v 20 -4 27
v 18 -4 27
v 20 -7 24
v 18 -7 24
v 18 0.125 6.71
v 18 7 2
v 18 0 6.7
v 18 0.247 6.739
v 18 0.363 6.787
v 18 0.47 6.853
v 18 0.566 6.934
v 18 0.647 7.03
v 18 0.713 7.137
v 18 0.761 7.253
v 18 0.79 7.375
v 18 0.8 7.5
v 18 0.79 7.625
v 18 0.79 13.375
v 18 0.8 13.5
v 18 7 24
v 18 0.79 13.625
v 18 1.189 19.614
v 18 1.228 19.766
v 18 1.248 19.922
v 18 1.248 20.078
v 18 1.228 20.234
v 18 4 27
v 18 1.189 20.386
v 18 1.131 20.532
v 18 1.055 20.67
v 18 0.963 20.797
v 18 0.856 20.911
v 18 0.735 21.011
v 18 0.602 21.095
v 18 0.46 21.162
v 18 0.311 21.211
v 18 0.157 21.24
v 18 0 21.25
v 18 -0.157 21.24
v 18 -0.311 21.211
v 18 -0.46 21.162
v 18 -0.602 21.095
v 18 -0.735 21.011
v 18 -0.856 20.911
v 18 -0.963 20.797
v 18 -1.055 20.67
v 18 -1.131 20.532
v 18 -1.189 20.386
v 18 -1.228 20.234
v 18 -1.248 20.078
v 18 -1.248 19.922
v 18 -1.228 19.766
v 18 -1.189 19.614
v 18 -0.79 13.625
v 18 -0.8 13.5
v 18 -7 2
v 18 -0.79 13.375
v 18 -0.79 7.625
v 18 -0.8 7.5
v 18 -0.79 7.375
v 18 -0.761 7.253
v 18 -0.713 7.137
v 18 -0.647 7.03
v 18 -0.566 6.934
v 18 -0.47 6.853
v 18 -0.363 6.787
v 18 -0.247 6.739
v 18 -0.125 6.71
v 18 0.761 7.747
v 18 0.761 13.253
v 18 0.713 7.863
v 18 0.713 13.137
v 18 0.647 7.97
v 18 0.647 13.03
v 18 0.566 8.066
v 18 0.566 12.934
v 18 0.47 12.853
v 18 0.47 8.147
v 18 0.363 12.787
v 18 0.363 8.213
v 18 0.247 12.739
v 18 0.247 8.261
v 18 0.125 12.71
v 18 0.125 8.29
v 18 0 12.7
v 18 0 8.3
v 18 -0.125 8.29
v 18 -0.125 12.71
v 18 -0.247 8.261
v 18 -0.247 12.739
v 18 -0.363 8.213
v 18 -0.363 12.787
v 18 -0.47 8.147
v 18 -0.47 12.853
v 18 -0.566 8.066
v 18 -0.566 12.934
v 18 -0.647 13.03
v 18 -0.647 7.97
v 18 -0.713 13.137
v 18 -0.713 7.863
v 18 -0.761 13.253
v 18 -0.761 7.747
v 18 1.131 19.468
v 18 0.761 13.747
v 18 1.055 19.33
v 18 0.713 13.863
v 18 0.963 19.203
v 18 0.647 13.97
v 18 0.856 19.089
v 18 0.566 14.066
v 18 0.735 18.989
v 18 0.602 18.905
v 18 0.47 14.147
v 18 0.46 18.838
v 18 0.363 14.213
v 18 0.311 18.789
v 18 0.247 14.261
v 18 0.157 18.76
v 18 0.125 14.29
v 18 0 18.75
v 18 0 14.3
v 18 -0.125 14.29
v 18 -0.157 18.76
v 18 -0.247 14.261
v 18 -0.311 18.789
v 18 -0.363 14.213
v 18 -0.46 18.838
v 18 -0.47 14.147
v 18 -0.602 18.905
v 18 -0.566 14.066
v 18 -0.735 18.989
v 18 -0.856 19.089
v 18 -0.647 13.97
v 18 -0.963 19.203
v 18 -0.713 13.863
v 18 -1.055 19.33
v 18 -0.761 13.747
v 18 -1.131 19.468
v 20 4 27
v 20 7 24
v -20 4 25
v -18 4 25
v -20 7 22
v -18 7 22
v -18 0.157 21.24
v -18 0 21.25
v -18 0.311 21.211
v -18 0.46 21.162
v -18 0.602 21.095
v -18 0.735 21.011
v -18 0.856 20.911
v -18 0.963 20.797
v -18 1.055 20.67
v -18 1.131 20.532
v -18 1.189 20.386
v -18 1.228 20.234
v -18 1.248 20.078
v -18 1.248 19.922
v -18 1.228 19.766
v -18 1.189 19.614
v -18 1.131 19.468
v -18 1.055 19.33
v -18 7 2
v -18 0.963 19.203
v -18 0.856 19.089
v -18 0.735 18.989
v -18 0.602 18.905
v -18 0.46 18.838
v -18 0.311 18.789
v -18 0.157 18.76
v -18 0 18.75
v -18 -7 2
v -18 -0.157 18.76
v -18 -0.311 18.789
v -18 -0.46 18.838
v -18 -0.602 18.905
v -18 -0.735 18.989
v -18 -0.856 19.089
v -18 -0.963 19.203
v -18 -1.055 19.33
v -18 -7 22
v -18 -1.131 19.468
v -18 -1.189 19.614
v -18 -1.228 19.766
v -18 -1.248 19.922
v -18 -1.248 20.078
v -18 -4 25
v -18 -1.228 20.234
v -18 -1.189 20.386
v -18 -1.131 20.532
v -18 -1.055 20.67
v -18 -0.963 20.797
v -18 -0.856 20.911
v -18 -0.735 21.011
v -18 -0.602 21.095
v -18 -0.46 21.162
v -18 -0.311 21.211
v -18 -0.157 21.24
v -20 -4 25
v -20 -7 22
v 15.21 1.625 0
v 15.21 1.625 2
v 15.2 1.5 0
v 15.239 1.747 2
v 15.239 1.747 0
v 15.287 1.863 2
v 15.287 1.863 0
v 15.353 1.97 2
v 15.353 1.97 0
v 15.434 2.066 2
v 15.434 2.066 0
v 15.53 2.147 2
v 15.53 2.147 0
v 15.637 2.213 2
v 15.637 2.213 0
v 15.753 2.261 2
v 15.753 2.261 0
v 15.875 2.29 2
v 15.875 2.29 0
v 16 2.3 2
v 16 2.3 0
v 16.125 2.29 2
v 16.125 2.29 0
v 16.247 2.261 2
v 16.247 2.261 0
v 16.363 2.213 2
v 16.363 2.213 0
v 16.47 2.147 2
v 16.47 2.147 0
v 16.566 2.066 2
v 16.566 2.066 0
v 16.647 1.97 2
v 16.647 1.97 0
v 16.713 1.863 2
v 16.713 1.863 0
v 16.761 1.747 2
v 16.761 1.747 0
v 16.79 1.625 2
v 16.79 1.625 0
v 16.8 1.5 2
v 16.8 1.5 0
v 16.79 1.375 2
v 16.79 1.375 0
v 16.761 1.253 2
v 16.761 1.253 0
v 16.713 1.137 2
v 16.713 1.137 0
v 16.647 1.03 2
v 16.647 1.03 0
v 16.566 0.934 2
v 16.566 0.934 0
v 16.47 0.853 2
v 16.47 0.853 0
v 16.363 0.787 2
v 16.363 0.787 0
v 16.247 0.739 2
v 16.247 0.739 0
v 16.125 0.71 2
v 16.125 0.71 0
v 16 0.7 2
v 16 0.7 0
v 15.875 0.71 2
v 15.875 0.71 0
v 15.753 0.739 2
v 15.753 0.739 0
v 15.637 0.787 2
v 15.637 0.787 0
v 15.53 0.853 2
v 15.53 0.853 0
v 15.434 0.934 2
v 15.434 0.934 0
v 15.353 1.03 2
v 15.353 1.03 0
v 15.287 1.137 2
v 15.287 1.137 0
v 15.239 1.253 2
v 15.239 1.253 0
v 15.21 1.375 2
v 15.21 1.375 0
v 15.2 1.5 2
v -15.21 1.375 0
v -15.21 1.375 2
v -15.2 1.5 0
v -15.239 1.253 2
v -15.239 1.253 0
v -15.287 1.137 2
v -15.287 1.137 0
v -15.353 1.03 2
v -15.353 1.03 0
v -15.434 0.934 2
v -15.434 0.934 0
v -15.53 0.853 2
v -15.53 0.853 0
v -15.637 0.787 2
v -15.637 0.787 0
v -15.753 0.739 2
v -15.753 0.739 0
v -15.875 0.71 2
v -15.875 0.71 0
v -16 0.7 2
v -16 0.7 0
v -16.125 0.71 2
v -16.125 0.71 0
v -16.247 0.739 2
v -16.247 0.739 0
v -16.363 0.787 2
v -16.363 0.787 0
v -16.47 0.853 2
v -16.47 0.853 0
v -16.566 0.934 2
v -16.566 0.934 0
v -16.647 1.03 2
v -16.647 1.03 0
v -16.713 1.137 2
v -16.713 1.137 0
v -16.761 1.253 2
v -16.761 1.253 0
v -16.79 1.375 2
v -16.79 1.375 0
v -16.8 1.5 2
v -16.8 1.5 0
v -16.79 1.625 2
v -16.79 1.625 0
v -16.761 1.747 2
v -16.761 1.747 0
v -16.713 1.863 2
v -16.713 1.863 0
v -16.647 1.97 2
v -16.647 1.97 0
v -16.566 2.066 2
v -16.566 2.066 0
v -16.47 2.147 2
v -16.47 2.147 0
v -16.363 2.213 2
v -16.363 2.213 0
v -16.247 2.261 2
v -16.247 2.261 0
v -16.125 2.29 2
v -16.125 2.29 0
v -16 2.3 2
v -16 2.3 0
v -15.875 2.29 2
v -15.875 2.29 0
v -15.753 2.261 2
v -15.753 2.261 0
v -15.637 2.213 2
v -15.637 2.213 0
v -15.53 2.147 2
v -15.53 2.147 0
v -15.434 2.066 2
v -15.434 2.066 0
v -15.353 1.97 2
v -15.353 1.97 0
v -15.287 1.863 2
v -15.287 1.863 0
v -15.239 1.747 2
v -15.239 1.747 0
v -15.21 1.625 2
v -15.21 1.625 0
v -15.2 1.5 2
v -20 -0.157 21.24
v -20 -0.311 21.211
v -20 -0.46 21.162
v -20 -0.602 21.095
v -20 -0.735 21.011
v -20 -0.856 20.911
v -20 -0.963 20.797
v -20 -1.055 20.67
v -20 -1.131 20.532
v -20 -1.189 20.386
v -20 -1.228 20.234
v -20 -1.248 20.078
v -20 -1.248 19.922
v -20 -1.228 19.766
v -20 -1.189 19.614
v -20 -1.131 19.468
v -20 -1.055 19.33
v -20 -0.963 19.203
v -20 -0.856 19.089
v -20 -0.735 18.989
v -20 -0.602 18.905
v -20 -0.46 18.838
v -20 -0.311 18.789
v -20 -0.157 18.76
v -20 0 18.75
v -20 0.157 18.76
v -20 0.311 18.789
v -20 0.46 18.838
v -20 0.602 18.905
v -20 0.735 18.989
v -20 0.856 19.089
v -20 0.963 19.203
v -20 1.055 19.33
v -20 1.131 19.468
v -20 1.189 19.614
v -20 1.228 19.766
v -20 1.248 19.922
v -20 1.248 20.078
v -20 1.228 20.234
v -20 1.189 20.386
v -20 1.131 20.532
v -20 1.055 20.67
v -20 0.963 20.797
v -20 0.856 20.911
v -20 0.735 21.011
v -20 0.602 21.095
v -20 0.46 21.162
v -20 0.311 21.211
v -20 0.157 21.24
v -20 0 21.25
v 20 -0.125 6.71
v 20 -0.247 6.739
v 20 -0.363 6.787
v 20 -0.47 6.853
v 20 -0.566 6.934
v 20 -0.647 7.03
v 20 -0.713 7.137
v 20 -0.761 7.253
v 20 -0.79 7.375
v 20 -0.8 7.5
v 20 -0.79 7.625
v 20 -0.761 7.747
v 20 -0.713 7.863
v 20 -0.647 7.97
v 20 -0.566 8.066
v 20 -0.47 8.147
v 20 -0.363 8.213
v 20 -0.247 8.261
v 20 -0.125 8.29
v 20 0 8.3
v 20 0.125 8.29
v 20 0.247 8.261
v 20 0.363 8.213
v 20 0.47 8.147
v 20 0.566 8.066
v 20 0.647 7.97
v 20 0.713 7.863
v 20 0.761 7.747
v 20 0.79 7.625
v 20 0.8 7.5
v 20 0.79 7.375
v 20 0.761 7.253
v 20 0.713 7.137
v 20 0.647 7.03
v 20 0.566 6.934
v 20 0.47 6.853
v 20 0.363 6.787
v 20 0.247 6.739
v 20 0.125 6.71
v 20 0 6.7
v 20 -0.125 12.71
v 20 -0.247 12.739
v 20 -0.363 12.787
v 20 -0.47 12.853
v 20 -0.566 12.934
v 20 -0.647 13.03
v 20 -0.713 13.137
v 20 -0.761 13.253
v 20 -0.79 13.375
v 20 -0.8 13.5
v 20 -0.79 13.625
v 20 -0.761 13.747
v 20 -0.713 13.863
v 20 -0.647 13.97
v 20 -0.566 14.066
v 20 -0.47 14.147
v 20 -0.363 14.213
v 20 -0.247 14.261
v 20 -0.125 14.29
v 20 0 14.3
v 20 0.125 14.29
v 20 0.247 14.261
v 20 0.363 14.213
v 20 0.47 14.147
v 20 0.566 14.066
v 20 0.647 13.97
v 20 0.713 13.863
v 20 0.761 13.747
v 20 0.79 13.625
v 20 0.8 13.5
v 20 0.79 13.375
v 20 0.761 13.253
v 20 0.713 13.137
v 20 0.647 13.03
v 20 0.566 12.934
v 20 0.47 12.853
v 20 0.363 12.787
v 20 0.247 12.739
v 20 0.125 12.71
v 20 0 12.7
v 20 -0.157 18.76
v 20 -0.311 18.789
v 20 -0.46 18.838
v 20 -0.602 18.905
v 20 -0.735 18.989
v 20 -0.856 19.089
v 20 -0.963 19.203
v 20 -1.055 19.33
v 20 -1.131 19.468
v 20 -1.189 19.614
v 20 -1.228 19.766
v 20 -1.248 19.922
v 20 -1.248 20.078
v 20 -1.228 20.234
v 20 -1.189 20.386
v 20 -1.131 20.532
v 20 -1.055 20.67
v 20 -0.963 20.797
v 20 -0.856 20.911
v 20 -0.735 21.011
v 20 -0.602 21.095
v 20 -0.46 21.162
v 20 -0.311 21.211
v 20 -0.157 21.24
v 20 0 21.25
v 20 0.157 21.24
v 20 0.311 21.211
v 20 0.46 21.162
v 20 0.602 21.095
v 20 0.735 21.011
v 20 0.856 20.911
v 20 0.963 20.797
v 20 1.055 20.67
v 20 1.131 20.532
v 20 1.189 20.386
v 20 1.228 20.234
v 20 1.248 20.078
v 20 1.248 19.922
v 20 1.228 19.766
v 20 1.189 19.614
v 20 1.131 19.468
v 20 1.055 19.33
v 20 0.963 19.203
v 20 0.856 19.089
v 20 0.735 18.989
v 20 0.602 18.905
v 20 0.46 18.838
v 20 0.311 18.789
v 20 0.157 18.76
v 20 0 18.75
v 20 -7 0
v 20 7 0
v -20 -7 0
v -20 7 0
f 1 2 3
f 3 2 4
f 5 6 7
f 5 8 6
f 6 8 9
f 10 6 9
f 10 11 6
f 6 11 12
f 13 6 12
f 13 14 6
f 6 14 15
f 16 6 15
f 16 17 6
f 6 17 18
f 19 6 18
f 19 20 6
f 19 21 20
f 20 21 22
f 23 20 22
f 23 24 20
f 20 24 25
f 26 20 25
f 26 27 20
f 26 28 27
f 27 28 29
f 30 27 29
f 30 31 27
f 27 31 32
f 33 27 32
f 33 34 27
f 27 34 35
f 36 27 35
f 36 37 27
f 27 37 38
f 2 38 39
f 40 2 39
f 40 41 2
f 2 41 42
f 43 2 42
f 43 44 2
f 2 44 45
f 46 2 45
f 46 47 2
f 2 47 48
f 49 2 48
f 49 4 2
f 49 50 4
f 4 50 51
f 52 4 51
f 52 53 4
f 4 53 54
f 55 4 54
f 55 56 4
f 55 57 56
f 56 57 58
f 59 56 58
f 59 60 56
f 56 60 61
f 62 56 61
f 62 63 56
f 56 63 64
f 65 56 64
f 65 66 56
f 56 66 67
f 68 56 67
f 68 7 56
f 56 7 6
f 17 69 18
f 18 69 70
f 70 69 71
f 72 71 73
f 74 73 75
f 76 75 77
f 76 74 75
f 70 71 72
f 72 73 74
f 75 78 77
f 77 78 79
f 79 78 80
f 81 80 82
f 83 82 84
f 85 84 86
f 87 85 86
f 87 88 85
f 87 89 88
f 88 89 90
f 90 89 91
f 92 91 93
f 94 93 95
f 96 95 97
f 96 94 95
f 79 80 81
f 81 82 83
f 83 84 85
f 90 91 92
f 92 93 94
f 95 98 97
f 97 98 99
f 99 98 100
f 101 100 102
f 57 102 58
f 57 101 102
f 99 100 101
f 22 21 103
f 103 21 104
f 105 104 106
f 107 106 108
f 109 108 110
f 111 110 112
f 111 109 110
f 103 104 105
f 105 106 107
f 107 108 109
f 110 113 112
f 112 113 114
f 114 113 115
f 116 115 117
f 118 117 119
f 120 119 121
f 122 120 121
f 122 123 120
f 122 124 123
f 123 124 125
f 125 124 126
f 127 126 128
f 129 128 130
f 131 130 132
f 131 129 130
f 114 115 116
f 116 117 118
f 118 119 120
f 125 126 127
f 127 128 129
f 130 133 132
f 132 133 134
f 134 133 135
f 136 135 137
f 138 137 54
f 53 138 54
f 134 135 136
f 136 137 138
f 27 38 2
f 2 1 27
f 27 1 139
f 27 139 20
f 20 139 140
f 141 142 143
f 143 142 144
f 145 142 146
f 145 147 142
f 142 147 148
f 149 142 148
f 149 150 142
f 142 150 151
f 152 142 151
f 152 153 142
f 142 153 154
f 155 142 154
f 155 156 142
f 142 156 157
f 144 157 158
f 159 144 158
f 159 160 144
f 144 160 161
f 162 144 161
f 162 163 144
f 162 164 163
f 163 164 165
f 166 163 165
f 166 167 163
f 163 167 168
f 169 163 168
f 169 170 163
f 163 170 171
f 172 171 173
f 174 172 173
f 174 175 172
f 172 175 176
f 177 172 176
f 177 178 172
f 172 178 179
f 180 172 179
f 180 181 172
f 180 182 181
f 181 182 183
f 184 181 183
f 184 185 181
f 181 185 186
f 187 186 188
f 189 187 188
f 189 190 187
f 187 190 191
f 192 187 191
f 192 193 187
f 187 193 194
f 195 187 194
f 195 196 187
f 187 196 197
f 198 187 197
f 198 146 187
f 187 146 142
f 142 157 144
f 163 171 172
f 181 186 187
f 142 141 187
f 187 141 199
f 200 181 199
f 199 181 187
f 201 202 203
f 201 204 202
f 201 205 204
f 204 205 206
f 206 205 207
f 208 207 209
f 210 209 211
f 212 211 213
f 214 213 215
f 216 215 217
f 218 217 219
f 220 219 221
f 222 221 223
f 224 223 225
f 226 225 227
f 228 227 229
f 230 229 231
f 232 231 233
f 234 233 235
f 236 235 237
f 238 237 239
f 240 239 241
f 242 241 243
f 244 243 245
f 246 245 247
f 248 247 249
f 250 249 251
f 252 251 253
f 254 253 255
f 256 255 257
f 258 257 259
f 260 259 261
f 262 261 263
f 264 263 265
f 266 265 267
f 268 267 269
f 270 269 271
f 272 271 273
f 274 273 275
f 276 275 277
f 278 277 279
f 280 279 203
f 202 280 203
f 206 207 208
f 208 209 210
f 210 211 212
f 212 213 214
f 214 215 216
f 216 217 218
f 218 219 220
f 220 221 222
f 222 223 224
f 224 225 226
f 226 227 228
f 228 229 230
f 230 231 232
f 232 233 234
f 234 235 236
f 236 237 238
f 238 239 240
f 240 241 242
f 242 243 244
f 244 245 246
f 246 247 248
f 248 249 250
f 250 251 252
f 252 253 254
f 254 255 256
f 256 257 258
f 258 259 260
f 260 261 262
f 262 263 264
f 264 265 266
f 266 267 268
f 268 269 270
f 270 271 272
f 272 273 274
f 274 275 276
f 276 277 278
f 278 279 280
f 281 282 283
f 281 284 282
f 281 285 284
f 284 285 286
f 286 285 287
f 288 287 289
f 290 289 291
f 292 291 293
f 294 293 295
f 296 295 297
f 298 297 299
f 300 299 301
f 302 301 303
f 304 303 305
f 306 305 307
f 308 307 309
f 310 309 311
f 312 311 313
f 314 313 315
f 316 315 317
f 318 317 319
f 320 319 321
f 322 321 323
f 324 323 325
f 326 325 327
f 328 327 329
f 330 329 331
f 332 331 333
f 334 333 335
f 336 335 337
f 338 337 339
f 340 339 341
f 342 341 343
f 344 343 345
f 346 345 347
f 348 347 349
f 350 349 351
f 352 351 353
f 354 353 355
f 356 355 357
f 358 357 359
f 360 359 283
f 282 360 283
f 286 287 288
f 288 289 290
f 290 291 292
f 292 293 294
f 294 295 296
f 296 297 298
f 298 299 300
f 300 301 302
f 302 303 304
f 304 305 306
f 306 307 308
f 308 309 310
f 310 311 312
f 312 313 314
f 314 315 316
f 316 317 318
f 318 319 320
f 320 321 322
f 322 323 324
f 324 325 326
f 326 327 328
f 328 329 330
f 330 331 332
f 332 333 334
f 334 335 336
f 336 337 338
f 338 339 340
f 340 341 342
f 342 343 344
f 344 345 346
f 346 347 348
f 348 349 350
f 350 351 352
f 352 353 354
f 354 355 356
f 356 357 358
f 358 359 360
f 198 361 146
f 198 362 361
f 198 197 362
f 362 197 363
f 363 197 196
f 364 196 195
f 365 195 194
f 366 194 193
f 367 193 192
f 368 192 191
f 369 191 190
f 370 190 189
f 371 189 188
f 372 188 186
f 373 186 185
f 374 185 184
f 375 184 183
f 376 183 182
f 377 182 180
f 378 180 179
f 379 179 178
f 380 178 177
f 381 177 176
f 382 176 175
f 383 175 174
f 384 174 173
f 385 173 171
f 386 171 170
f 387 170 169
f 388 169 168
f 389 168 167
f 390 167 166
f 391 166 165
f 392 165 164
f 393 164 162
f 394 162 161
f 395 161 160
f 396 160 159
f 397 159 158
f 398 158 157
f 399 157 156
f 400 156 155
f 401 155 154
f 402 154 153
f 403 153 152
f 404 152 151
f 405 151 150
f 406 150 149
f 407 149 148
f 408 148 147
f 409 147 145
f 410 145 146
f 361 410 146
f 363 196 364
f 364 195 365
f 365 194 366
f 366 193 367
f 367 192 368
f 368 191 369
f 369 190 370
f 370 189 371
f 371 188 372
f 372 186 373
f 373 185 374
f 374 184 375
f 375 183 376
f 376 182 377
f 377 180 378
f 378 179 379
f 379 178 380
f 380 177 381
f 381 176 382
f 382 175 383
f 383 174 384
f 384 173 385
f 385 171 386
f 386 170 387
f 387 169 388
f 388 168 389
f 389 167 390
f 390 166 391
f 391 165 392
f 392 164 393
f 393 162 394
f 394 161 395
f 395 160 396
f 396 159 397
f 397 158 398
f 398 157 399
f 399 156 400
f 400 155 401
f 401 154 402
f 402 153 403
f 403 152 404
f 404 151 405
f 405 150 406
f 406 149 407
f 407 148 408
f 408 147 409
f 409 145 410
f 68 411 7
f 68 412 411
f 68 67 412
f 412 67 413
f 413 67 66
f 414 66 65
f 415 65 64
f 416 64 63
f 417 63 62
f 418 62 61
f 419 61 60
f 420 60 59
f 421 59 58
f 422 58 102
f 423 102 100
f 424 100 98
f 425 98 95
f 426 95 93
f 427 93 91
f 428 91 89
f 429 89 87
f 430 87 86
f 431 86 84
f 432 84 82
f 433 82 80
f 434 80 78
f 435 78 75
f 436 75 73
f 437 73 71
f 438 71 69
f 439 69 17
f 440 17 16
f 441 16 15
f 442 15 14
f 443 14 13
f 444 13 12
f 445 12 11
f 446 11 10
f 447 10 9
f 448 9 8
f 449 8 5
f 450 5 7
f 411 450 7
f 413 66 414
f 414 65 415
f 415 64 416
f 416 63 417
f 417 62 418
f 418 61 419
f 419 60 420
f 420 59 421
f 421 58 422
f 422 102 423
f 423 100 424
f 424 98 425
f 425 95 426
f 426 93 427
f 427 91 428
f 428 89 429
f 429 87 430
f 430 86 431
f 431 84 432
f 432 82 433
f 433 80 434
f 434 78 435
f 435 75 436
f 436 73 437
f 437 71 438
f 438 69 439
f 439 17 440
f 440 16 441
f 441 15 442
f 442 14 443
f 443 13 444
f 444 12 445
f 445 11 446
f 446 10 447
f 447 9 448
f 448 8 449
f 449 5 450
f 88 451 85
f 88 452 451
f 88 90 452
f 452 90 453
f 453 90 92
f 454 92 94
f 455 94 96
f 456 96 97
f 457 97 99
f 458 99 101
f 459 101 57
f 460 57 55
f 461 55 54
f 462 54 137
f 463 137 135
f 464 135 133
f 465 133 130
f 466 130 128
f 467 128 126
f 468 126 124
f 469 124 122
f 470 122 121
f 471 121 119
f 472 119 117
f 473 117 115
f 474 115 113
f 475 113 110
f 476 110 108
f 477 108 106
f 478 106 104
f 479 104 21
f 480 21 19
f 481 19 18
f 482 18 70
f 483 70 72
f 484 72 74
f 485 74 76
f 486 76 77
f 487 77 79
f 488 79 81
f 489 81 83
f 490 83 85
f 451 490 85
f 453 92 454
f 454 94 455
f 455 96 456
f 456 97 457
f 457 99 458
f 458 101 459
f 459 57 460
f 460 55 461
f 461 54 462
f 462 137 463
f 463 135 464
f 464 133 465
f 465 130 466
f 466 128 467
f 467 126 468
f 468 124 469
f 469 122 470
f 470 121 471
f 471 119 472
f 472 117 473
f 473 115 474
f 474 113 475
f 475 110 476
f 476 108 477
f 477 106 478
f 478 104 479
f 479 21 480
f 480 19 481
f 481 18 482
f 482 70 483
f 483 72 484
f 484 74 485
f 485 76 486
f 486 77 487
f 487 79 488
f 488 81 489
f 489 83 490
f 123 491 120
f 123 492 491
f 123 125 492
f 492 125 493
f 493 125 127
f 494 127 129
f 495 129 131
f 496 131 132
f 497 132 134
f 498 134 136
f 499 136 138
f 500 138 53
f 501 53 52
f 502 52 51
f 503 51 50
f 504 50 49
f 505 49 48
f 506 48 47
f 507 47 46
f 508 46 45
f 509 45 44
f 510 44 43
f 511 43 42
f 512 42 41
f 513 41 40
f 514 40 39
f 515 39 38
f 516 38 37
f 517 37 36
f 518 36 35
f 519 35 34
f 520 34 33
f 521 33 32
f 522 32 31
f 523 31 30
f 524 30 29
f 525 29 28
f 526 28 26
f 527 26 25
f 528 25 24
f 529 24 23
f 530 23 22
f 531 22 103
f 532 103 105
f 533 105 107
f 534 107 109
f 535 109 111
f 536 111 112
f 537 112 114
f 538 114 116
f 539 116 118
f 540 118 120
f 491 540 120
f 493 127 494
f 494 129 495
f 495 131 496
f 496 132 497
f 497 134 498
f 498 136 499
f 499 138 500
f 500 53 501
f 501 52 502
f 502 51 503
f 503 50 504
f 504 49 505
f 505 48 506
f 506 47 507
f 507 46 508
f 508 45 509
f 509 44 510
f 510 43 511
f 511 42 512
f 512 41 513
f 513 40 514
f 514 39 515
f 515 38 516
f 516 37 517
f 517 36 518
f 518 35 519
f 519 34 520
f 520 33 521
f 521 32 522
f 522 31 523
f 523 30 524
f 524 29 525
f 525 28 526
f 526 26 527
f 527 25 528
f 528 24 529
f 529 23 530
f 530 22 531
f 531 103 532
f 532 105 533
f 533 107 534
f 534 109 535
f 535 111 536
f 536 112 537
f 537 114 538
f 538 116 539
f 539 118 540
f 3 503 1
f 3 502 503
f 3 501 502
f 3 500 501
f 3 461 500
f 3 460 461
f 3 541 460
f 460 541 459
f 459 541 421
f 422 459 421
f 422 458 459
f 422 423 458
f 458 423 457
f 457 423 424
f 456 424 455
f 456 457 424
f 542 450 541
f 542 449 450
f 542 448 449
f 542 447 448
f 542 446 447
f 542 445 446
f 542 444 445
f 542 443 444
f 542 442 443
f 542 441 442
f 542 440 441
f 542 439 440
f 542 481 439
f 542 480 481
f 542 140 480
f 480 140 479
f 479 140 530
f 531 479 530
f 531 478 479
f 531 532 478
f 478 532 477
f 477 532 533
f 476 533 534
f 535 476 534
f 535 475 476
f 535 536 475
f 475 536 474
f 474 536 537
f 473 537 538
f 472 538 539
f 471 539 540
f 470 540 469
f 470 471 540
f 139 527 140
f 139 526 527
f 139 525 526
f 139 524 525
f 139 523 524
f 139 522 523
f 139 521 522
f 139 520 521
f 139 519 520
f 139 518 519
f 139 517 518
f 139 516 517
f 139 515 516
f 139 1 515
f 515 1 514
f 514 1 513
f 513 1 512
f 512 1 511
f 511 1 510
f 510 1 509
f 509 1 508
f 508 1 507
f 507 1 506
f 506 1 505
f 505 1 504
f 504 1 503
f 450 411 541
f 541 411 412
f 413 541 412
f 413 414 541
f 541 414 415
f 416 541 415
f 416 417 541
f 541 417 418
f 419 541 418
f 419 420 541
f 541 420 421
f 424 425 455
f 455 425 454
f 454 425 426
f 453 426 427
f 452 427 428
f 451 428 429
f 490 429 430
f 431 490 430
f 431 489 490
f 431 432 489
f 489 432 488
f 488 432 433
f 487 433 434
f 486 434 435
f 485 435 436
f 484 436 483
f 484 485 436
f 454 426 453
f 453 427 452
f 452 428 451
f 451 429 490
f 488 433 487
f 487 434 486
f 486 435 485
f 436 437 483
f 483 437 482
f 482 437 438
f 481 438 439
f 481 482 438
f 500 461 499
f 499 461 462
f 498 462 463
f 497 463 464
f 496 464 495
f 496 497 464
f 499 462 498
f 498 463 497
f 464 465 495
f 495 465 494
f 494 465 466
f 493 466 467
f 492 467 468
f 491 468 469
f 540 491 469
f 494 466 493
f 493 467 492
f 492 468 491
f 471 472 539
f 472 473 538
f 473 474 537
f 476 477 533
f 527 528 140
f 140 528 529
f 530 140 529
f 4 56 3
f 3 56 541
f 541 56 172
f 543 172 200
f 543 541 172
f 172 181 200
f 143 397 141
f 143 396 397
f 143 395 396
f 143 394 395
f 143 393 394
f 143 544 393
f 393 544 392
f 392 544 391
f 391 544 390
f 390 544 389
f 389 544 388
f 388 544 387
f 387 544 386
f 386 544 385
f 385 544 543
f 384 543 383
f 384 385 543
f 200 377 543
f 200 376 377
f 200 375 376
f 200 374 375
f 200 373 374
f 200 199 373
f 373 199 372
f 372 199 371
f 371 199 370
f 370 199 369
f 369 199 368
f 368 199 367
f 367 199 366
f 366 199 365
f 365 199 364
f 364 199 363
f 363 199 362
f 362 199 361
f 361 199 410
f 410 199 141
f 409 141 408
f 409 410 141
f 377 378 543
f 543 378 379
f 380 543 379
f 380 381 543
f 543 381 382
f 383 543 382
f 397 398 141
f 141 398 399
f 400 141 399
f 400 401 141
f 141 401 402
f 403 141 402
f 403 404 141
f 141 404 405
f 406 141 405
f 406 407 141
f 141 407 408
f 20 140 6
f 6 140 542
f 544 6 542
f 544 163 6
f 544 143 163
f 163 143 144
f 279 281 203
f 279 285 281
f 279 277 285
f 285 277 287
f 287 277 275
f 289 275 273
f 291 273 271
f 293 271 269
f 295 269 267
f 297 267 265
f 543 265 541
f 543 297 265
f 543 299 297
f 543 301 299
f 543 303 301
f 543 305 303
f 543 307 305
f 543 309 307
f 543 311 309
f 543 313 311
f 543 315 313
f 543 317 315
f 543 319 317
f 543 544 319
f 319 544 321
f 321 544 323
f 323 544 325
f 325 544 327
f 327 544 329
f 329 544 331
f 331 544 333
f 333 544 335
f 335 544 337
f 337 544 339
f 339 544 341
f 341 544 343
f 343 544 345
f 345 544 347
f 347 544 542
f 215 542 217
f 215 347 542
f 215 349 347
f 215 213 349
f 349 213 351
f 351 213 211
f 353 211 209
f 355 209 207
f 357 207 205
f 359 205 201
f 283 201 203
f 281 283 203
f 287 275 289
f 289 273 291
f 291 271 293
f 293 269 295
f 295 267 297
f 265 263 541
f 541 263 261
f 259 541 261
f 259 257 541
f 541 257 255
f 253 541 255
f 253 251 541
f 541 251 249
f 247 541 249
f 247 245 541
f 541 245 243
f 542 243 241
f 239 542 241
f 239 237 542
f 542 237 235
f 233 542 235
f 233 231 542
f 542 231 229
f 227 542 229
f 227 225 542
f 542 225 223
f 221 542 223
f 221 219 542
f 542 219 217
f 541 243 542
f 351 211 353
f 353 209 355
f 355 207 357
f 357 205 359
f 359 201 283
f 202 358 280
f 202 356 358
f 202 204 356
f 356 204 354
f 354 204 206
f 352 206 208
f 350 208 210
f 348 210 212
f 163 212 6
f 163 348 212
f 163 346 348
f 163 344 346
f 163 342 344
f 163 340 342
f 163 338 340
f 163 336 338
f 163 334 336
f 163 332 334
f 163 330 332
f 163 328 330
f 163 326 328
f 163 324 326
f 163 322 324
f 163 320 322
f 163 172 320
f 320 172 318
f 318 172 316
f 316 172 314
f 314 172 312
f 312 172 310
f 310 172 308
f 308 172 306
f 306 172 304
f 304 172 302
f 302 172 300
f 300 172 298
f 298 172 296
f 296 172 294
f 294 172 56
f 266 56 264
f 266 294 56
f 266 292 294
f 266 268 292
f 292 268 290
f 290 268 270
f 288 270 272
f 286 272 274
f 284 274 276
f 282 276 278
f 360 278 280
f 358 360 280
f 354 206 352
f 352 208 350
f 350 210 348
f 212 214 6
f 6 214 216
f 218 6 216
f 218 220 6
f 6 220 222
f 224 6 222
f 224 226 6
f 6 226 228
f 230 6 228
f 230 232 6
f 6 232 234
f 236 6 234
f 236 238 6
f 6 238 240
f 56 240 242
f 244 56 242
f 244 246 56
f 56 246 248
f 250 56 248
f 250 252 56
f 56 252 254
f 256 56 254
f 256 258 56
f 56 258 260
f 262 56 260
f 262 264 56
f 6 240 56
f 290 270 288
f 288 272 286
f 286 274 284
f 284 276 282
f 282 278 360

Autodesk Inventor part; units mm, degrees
ref_plane "YZ Plane" through (0, 0, 0) normal (1, 0, 0) x (0, 1, 0)
ref_plane "XZ Plane" through (0, 0, 0) normal (0, 1, 0) x (-1, 0, 0)
ref_plane "XY Plane" through (0, 0, 0) normal (0, 0, 1) x (1, 0, 0)
sketch "スケッチ1" plane through (0, 0, 0) normal (0, 0, 1) x (1, 0, 0)
  line L0 (-20, 7) -> (20, 7)
  line L1 (20, 7) -> (20, -7)
  line L2 (20, -7) -> (-20, -7)
  line L3 (-20, -7) -> (-20, 7)
  line L4 (-28, 0) -> (28, 0) construction
  line L5 (0, -9.8) -> (0, 9.8) construction
  point P0 (0, 0)
  dimension "d0" = 40
  dimension "d1" = 14
  dimension "d2" = 20
  dimension "d3" = 7
extrude "押し出し1" add sketch "スケッチ1" along normal blind 2
sketch "スケッチ2" plane through (0, 0, 2) normal (0, 0, 1) x (1, 0, 0)
  line L0 (-20, -7) -> (20, -7) projected
  line L1 (-20, 7) -> (-18, 7)
  line L2 (-18, 7) -> (-18, -7)
  line L3 (-18, -7) -> (-20, -7)
  line L4 (-20, -7) -> (-20, 7)
  point P0 (0, 0)
  dimension "d6" = 2
extrude "押し出し2" add sketch "スケッチ2" along normal blind 23
sketch "スケッチ3" plane through (0, 0, 2) normal (0, 0, 1) x (1, 0, 0)
  line L0 (-18, -7) -> (20, -7) projected
  line L1 (20, 7) -> (18, 7)
  line L2 (18, 7) -> (18, -7)
  line L3 (18, -7) -> (20, -7)
  line L4 (20, -7) -> (20, 7)
  point P0 (0, 0)
  dimension "d9" = 2
extrude "押し出し3" add sketch "スケッチ3" along normal blind 25
sketch "スケッチ4" plane through (20, -7, 0) normal (1, 0, 0) x (0, 0, -1)
  line L0 (-27, 0) -> (-27, 14) projected
  circle A0 centre (-20, 7) radius 1.25
  point P0 (0, 7)
  dimension "d12" = 2.5
  dimension "d13" = 7
extrude "押し出し4" cut sketch "スケッチ4" against normal blind 27
sketch "スケッチ5" plane through (20, -7, 0) normal (1, 0, 0) x (0, 0, -1)
  circle A0 centre (-20, 7) radius 1.25 projected
  circle A1 centre (-13.5, 7) radius 0.8
  point P0 (0, 7)
  dimension "d16" = 1.6
  dimension "d17" = 6.5
extrude "押し出し5" cut sketch "スケッチ5" against normal blind 27 contours A1
sketch "スケッチ6" plane through (20, -7, 0) normal (1, 0, 0) x (0, 0, -1)
  circle A0 centre (-20, 7) radius 1.25 projected
  circle A1 centre (-7.5, 7) radius 0.8
  point P0 (0, 7)
  dimension "d20" = 1.6
  dimension "d21" = 12.5
extrude "押し出し6" cut sketch "スケッチ6" against normal blind 27 contours A1
sketch "スケッチ7" plane through (-20, -7, 0) normal (-1, 0, 0) x (0, 0, 1)
  circle A0 centre (20, 7) radius 1.25 projected
  circle A1 centre (20, 7) radius 1.25
  point P0 (0, 7)
  dimension "d24" = 2.5
extrude "押し出し7" cut sketch "スケッチ7" against normal blind 27
sketch "スケッチ8" plane through (0, 0, 2) normal (0, 0, 1) x (1, 0, 0)
  circle A0 centre (-16, 1.5) radius 0.8
  line L0 (-18, -7) -> (18, -7) projected
  line L1 (0, -9.8) -> (0, 9.8) construction
  line L2 (-20, 7) -> (-20, -7) projected
  point P0 (0, 0)
  dimension "d27" = 1.6
  dimension "d37" = 8.5
  dimension "d39" = 4
extrude "押し出し8" cut sketch "スケッチ8" against normal blind 27
mirror "ミラー1" about plane through (0, 0, 0) normal (1, 0, 0) of "押し出し8"
chamfer "面取り1" [suppressed]
chamfer "面取り2" distance 3 angle 45 4 edges at (-19, -7, 25) (-19, 7, 25) (19, 7, 27) (19, -7, 27)
sketch "スケッチ9" plane through (0, 0, 0) normal (0, 0, -1) x (-1, 0, 0)
  line L0 (-20, -7) -> (20, -7) projected
  point P0 (0, 0)
  point P1 (-17, 1)
  dimension "d40" = 8
  dimension "d41" = 17
equation "\"d2\" = 0.5 * d0"
equation "\"d3\" = 0.5 * d1"
properties part number "face"
